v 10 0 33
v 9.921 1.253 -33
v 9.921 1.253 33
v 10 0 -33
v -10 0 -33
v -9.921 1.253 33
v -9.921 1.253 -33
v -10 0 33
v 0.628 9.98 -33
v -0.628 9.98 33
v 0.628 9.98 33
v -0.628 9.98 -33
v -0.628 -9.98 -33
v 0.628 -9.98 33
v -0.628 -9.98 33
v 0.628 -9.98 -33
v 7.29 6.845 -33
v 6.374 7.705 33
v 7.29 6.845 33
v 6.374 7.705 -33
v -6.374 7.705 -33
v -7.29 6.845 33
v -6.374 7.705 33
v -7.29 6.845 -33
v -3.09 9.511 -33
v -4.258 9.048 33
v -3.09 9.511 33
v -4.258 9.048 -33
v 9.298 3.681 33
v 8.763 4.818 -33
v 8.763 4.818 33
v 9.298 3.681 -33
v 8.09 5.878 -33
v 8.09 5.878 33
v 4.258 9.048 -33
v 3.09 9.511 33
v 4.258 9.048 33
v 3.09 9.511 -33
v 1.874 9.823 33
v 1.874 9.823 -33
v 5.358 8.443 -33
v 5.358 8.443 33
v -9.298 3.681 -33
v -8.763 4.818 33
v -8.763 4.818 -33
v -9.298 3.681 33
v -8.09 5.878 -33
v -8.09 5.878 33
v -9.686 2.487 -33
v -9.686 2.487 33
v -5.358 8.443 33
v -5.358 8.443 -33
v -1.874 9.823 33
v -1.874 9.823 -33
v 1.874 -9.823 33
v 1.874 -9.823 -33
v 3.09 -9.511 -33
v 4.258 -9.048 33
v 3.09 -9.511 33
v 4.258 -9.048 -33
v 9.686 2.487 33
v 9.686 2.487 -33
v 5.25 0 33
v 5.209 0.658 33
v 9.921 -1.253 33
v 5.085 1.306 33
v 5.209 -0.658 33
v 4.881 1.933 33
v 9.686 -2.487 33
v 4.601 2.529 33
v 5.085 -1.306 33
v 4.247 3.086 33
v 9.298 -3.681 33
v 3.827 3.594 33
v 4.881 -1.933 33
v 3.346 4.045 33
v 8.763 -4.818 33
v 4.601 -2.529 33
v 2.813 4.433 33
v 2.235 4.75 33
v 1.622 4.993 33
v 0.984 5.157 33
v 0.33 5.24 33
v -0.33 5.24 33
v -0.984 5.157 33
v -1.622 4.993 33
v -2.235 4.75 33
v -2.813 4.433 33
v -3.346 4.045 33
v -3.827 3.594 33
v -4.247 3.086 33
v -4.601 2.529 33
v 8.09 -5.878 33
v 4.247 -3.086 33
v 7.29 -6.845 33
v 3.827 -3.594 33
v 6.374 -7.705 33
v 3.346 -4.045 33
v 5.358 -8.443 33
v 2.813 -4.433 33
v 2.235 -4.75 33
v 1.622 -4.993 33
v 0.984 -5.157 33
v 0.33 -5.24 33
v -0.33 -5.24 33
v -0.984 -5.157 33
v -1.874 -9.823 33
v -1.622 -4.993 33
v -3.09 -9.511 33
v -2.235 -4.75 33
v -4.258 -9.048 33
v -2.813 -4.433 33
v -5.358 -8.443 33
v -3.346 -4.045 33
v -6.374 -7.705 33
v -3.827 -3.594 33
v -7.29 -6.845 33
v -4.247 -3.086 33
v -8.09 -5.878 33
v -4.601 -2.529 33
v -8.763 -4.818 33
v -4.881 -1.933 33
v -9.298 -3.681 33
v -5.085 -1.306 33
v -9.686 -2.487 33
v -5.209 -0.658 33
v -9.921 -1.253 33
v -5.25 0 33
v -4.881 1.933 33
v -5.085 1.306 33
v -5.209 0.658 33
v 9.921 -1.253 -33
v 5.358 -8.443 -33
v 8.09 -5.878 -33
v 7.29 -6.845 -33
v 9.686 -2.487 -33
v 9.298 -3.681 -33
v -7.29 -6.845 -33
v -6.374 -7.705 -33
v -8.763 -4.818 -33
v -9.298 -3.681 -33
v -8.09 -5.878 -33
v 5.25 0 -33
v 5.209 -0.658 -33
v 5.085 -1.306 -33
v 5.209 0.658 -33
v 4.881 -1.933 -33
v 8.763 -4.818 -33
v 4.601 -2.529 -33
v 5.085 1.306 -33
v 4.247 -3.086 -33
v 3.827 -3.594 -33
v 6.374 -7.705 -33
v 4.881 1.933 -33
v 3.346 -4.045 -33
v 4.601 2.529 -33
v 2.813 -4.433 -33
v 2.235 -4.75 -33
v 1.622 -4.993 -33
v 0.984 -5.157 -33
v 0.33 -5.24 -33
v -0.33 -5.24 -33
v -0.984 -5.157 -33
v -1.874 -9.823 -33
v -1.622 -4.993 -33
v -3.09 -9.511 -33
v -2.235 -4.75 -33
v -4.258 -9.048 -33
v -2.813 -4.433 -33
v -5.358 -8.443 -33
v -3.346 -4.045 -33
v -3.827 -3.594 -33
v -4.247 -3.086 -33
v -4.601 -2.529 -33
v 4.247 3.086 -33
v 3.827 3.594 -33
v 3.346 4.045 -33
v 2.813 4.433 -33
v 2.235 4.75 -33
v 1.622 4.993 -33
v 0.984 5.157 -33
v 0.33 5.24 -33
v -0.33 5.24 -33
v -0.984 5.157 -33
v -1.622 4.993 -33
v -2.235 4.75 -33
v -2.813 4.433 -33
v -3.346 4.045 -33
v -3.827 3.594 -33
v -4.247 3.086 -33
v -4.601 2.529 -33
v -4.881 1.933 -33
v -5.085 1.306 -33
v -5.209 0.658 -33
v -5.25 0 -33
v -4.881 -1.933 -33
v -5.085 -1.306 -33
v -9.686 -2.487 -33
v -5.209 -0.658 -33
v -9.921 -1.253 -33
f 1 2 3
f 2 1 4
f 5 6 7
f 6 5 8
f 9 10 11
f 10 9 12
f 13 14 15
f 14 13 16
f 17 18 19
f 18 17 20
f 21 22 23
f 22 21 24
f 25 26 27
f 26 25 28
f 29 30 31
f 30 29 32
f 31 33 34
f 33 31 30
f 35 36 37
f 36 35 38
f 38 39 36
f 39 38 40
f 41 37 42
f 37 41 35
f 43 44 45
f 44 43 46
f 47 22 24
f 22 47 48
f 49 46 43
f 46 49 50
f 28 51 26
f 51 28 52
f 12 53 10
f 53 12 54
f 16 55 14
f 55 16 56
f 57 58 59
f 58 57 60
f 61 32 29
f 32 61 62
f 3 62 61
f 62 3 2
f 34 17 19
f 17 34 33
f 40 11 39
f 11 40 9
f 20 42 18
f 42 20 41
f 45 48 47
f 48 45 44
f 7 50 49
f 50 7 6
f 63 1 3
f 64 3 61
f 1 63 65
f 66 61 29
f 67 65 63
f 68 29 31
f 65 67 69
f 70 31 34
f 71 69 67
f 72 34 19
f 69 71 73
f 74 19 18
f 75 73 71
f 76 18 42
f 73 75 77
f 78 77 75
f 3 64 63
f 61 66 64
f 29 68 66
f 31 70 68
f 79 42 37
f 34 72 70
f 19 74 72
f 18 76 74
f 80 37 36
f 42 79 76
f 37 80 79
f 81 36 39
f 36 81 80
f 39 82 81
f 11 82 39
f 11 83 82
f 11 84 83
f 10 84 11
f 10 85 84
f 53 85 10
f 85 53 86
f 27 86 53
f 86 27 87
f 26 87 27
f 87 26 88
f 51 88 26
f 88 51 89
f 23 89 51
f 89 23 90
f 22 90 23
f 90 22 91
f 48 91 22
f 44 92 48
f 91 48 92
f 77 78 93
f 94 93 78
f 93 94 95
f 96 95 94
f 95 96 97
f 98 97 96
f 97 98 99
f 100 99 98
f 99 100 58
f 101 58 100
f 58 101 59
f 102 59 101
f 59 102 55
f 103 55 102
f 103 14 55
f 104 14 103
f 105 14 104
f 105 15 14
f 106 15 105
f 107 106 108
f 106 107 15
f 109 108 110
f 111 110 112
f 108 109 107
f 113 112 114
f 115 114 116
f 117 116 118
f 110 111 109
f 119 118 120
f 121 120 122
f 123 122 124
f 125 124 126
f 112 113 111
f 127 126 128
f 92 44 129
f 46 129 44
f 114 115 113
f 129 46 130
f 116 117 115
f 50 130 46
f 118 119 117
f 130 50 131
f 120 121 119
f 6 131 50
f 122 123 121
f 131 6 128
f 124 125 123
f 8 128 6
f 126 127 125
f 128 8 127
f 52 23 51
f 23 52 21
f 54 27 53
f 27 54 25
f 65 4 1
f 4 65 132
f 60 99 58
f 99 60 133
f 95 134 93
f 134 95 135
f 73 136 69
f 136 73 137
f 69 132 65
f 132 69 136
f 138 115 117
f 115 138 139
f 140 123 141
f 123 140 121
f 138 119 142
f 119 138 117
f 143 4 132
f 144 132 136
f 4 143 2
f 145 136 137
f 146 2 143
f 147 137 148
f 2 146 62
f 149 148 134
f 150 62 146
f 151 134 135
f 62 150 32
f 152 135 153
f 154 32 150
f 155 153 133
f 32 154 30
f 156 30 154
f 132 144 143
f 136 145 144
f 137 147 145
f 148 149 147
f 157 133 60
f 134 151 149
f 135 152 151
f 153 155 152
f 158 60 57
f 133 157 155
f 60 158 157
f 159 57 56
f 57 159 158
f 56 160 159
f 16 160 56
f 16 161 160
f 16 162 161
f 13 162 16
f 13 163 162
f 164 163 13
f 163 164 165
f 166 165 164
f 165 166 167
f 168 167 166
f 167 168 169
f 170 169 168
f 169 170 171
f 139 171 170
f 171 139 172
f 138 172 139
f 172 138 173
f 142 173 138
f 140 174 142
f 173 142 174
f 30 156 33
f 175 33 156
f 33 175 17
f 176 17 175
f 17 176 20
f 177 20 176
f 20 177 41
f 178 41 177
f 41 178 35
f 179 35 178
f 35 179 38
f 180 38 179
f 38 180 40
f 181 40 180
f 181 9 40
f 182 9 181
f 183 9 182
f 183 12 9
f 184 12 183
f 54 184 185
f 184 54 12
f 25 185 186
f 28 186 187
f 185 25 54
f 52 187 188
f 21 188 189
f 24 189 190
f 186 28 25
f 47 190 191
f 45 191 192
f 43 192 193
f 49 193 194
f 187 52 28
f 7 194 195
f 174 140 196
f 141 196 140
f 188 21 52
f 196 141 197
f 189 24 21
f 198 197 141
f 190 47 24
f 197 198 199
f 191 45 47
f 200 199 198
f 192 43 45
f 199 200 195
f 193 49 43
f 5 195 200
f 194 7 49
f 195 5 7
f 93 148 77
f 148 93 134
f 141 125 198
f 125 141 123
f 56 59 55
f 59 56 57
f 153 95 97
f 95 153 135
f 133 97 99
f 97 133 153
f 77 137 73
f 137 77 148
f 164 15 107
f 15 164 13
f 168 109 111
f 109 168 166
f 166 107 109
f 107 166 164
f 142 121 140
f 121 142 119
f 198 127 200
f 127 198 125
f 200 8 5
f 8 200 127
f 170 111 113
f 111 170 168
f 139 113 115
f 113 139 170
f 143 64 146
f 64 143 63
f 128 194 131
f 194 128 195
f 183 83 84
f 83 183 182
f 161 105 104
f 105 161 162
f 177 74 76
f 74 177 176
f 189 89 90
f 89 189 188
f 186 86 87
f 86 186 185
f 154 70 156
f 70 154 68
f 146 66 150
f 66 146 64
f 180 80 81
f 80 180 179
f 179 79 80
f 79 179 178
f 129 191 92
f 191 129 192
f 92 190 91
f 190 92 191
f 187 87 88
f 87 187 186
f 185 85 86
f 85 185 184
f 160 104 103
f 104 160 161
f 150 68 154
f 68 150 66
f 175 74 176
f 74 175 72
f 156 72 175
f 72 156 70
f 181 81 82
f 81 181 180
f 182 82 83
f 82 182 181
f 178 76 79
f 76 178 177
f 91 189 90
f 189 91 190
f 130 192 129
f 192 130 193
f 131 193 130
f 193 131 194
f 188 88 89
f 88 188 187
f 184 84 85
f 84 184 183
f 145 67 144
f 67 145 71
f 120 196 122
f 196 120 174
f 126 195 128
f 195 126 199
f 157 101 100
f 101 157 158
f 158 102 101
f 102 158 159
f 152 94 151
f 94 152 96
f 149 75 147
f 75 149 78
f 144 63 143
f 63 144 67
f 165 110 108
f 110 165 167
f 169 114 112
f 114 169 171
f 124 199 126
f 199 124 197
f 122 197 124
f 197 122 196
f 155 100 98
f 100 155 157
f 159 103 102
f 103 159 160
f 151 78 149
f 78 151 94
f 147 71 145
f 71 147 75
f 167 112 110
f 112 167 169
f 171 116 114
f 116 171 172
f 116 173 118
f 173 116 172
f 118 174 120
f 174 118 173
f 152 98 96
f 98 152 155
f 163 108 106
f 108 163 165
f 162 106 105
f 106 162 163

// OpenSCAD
$fn = 50;


difference() {
	union() {
		translate(v = [0, 0, -33.0000000000]) {
			cylinder(h = 66, r = 10.0000000000);
		}
	}
	union() {
		translate(v = [0, 0, -100.0000000000]) {
			cylinder(h = 200, r = 5.2500000000);
		}
	}
}
